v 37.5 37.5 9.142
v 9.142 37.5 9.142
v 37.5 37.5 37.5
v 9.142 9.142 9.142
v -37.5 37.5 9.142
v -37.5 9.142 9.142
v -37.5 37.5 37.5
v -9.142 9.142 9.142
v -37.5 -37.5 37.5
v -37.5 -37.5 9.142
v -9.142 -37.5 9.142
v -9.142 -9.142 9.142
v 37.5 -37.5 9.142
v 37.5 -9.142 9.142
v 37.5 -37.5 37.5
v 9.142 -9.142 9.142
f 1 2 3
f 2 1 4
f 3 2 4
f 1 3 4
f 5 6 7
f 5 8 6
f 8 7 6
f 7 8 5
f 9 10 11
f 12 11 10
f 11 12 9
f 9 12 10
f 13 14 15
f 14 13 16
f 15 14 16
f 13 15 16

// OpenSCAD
// file: def.scad
round_radius = 1.25;
sticker_margin = 3;
sticker_round_radius = 1;
total_size = 75;
base_size = (total_size - round_radius * 4) / (4 + sqrt(2));
cut1_dis = base_size * sqrt(2) / 2;
cut2_dis = base_size * (1 + sqrt(2) / 2);
cut2_corner_dis = base_size * (sqrt(2) / 2 * sqrt(3) + 1 / 3 * sqrt(3));
inf = total_size * 10;
// main file
include <def.scad>

module face_pick_cw() {
    difference() {
        cube([total_size, total_size, total_size], center = true);
        rotate([180, 0, 0])
            translate([-inf, -inf, -cut1_dis])
                cube([inf * 2, inf * 2, inf]);
        rotate([0, -45, 0])
            translate([-inf, -inf, 0])
                cube([inf * 2, inf * 2, inf]);
        rotate([90, 0, 45])
            translate([-inf, -inf, 0])
                cube([inf * 2, inf * 2, inf]);
    }
}

for (vec = [[0, 0, 0], [0, 0, 90], [0, 0, 180], [0, 0, -90]])
    rotate(vec)
        face_pick_cw();
